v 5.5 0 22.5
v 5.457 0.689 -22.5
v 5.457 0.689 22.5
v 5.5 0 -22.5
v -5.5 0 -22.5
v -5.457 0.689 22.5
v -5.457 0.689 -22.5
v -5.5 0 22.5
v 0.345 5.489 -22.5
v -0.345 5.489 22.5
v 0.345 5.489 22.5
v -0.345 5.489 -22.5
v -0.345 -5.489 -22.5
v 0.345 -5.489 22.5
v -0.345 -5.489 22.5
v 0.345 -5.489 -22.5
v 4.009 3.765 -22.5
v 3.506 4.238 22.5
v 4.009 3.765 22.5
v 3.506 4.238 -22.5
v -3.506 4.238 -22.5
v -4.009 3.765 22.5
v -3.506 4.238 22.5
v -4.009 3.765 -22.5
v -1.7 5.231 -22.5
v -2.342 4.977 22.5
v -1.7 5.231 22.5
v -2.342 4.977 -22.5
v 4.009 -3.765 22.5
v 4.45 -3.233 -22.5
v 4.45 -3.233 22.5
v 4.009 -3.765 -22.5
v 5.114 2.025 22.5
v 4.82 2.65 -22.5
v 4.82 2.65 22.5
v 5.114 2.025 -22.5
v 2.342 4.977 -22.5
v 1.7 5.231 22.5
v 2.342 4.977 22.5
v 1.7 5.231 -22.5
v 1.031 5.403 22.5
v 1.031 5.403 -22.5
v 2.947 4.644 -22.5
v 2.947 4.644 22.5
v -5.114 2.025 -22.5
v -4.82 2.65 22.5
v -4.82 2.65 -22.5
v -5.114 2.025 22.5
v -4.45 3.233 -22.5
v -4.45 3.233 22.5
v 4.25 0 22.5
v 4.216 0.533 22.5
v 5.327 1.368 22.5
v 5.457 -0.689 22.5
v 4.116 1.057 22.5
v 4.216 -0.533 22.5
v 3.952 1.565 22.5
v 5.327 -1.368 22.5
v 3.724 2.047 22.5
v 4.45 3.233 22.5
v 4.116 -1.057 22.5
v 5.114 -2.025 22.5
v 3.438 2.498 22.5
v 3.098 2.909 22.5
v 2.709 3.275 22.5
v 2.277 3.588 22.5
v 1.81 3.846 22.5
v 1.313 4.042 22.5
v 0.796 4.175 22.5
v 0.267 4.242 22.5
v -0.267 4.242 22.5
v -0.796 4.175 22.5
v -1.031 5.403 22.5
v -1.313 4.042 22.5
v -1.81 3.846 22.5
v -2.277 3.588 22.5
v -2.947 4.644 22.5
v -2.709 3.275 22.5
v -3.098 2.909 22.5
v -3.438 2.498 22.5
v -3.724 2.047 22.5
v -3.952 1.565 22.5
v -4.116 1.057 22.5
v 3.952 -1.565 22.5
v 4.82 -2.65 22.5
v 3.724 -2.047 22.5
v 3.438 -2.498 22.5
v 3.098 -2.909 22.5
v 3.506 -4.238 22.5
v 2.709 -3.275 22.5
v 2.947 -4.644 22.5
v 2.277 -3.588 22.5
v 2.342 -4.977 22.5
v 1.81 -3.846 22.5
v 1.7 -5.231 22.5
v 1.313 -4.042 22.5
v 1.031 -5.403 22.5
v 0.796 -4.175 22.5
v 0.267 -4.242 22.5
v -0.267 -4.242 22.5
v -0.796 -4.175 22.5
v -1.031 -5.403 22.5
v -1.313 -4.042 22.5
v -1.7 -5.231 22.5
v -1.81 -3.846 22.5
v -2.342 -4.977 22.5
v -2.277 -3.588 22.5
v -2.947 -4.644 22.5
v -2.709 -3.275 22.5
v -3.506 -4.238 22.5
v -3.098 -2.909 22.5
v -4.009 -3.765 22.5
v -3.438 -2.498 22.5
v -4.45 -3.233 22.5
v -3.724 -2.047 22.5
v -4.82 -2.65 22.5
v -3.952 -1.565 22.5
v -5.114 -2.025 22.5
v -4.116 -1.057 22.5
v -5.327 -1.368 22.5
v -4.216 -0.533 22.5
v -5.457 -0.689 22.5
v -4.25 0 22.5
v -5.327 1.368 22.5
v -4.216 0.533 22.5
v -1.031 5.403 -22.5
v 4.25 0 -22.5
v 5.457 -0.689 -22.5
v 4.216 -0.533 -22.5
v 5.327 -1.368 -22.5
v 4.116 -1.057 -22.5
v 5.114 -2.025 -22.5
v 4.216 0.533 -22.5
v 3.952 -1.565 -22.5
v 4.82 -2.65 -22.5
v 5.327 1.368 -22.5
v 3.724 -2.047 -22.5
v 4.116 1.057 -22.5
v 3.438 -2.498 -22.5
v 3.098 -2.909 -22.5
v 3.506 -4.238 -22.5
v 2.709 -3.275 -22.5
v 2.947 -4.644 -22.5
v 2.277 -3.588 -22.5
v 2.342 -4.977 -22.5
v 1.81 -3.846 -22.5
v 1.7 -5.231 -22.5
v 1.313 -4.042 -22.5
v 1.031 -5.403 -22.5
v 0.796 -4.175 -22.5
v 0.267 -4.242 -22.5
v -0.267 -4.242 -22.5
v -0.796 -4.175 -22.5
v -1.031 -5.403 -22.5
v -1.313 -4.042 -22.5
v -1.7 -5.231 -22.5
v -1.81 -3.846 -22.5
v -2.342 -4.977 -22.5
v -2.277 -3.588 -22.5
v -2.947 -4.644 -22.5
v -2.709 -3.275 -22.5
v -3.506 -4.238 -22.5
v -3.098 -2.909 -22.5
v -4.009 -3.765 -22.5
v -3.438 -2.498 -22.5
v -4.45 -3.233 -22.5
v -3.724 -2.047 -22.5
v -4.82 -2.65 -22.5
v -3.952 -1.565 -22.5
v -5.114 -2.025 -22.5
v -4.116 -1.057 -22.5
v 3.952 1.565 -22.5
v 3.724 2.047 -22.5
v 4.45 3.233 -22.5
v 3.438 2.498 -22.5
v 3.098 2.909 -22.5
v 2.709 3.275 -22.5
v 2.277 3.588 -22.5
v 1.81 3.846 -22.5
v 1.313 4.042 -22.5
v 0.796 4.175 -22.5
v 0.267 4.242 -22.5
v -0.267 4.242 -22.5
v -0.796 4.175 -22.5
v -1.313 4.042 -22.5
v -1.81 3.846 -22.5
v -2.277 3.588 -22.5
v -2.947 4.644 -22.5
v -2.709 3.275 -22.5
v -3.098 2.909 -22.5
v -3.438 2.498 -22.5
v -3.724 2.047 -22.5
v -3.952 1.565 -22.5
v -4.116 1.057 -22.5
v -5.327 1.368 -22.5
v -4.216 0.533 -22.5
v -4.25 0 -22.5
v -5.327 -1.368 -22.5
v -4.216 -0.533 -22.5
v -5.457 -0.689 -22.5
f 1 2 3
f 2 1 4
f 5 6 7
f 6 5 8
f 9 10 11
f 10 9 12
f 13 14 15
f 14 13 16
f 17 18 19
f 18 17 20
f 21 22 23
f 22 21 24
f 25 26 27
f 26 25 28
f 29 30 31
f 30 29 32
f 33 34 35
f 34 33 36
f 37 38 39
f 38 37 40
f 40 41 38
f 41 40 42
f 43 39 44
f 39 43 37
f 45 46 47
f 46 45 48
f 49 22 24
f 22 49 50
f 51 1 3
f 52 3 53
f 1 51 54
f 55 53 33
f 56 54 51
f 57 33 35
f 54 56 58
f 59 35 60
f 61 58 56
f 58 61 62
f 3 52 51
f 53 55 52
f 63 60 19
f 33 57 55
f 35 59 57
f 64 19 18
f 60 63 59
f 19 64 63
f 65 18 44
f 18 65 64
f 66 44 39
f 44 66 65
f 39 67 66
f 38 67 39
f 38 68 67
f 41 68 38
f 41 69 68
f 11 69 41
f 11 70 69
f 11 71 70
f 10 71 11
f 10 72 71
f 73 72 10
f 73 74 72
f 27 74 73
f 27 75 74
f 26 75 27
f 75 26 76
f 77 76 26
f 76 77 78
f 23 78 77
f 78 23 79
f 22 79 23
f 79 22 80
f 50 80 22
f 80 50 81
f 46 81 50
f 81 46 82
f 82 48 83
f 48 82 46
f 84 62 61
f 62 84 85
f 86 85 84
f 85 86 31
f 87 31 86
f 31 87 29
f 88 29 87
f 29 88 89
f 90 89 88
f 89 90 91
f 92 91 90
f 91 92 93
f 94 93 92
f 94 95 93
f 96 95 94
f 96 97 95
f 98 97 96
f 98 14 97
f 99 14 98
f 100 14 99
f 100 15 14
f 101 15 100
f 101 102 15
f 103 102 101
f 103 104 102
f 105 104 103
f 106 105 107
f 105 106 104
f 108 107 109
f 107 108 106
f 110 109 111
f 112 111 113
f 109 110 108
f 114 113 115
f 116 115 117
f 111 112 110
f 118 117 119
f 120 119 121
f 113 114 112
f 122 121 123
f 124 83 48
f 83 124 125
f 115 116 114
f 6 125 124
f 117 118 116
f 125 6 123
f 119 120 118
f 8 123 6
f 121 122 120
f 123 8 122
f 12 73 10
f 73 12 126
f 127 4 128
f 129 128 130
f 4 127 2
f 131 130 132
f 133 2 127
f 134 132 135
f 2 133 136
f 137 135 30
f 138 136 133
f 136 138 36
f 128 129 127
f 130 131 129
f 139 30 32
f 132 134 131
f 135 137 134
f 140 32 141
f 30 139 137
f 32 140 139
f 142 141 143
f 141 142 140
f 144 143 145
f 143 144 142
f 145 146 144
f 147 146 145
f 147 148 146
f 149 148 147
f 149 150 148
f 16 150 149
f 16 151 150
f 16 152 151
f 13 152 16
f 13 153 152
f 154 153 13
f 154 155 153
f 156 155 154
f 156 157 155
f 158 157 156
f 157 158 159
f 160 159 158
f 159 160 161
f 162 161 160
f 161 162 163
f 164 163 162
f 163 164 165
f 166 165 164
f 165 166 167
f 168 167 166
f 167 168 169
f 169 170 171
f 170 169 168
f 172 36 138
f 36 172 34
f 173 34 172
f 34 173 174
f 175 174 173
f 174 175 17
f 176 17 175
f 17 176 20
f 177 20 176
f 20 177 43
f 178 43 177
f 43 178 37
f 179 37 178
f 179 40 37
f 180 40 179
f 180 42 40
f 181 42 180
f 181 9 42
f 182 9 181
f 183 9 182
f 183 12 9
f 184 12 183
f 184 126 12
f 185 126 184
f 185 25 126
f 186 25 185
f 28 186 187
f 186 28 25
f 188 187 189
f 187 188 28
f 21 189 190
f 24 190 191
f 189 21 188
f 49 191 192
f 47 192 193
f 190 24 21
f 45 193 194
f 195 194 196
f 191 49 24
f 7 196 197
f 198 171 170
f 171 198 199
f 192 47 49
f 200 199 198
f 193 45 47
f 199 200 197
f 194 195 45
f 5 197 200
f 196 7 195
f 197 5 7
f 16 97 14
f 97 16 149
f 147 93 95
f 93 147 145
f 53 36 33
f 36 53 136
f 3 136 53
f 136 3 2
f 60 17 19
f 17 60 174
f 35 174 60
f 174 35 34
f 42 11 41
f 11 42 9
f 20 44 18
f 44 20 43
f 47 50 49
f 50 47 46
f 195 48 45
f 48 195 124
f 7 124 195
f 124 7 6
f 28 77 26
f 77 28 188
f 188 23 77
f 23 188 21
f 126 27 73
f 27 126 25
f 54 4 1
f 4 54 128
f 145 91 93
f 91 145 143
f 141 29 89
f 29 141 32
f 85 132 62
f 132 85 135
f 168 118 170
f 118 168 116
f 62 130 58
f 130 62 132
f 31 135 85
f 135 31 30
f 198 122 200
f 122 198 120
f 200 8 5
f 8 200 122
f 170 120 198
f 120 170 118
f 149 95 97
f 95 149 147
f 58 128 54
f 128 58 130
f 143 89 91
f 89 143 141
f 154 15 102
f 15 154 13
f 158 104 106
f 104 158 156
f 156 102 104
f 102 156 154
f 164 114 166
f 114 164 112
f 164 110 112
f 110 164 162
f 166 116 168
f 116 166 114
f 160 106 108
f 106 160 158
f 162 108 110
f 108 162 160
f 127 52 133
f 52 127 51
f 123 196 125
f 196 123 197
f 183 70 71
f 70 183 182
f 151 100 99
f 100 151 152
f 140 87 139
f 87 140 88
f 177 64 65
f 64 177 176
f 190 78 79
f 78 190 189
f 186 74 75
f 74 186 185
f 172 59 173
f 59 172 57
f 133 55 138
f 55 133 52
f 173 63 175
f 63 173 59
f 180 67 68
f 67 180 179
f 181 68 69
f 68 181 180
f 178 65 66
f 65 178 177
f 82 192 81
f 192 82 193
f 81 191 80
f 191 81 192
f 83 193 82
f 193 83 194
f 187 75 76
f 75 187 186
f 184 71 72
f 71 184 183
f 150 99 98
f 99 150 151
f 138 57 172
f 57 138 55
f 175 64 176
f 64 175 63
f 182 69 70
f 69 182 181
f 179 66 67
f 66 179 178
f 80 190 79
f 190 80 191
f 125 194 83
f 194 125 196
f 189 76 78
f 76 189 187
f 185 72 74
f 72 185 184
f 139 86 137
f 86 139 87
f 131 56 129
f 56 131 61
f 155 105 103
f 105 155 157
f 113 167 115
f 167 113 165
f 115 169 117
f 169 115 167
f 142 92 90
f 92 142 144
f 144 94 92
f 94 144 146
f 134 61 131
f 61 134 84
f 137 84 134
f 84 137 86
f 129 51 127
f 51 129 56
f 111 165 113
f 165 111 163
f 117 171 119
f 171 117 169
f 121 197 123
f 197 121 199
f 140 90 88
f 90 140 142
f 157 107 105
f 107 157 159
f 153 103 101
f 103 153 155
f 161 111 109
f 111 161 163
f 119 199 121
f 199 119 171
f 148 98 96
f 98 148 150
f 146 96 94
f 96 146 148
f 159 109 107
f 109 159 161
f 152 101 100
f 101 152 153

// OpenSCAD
$fn = 50;


difference() {
	union() {
		translate(v = [0, 0, -22.5000000000]) {
			cylinder(h = 45, r = 5.5000000000);
		}
	}
	union() {
		translate(v = [0, 0, -100.0000000000]) {
			cylinder(h = 200, r = 4.2500000000);
		}
	}
}
